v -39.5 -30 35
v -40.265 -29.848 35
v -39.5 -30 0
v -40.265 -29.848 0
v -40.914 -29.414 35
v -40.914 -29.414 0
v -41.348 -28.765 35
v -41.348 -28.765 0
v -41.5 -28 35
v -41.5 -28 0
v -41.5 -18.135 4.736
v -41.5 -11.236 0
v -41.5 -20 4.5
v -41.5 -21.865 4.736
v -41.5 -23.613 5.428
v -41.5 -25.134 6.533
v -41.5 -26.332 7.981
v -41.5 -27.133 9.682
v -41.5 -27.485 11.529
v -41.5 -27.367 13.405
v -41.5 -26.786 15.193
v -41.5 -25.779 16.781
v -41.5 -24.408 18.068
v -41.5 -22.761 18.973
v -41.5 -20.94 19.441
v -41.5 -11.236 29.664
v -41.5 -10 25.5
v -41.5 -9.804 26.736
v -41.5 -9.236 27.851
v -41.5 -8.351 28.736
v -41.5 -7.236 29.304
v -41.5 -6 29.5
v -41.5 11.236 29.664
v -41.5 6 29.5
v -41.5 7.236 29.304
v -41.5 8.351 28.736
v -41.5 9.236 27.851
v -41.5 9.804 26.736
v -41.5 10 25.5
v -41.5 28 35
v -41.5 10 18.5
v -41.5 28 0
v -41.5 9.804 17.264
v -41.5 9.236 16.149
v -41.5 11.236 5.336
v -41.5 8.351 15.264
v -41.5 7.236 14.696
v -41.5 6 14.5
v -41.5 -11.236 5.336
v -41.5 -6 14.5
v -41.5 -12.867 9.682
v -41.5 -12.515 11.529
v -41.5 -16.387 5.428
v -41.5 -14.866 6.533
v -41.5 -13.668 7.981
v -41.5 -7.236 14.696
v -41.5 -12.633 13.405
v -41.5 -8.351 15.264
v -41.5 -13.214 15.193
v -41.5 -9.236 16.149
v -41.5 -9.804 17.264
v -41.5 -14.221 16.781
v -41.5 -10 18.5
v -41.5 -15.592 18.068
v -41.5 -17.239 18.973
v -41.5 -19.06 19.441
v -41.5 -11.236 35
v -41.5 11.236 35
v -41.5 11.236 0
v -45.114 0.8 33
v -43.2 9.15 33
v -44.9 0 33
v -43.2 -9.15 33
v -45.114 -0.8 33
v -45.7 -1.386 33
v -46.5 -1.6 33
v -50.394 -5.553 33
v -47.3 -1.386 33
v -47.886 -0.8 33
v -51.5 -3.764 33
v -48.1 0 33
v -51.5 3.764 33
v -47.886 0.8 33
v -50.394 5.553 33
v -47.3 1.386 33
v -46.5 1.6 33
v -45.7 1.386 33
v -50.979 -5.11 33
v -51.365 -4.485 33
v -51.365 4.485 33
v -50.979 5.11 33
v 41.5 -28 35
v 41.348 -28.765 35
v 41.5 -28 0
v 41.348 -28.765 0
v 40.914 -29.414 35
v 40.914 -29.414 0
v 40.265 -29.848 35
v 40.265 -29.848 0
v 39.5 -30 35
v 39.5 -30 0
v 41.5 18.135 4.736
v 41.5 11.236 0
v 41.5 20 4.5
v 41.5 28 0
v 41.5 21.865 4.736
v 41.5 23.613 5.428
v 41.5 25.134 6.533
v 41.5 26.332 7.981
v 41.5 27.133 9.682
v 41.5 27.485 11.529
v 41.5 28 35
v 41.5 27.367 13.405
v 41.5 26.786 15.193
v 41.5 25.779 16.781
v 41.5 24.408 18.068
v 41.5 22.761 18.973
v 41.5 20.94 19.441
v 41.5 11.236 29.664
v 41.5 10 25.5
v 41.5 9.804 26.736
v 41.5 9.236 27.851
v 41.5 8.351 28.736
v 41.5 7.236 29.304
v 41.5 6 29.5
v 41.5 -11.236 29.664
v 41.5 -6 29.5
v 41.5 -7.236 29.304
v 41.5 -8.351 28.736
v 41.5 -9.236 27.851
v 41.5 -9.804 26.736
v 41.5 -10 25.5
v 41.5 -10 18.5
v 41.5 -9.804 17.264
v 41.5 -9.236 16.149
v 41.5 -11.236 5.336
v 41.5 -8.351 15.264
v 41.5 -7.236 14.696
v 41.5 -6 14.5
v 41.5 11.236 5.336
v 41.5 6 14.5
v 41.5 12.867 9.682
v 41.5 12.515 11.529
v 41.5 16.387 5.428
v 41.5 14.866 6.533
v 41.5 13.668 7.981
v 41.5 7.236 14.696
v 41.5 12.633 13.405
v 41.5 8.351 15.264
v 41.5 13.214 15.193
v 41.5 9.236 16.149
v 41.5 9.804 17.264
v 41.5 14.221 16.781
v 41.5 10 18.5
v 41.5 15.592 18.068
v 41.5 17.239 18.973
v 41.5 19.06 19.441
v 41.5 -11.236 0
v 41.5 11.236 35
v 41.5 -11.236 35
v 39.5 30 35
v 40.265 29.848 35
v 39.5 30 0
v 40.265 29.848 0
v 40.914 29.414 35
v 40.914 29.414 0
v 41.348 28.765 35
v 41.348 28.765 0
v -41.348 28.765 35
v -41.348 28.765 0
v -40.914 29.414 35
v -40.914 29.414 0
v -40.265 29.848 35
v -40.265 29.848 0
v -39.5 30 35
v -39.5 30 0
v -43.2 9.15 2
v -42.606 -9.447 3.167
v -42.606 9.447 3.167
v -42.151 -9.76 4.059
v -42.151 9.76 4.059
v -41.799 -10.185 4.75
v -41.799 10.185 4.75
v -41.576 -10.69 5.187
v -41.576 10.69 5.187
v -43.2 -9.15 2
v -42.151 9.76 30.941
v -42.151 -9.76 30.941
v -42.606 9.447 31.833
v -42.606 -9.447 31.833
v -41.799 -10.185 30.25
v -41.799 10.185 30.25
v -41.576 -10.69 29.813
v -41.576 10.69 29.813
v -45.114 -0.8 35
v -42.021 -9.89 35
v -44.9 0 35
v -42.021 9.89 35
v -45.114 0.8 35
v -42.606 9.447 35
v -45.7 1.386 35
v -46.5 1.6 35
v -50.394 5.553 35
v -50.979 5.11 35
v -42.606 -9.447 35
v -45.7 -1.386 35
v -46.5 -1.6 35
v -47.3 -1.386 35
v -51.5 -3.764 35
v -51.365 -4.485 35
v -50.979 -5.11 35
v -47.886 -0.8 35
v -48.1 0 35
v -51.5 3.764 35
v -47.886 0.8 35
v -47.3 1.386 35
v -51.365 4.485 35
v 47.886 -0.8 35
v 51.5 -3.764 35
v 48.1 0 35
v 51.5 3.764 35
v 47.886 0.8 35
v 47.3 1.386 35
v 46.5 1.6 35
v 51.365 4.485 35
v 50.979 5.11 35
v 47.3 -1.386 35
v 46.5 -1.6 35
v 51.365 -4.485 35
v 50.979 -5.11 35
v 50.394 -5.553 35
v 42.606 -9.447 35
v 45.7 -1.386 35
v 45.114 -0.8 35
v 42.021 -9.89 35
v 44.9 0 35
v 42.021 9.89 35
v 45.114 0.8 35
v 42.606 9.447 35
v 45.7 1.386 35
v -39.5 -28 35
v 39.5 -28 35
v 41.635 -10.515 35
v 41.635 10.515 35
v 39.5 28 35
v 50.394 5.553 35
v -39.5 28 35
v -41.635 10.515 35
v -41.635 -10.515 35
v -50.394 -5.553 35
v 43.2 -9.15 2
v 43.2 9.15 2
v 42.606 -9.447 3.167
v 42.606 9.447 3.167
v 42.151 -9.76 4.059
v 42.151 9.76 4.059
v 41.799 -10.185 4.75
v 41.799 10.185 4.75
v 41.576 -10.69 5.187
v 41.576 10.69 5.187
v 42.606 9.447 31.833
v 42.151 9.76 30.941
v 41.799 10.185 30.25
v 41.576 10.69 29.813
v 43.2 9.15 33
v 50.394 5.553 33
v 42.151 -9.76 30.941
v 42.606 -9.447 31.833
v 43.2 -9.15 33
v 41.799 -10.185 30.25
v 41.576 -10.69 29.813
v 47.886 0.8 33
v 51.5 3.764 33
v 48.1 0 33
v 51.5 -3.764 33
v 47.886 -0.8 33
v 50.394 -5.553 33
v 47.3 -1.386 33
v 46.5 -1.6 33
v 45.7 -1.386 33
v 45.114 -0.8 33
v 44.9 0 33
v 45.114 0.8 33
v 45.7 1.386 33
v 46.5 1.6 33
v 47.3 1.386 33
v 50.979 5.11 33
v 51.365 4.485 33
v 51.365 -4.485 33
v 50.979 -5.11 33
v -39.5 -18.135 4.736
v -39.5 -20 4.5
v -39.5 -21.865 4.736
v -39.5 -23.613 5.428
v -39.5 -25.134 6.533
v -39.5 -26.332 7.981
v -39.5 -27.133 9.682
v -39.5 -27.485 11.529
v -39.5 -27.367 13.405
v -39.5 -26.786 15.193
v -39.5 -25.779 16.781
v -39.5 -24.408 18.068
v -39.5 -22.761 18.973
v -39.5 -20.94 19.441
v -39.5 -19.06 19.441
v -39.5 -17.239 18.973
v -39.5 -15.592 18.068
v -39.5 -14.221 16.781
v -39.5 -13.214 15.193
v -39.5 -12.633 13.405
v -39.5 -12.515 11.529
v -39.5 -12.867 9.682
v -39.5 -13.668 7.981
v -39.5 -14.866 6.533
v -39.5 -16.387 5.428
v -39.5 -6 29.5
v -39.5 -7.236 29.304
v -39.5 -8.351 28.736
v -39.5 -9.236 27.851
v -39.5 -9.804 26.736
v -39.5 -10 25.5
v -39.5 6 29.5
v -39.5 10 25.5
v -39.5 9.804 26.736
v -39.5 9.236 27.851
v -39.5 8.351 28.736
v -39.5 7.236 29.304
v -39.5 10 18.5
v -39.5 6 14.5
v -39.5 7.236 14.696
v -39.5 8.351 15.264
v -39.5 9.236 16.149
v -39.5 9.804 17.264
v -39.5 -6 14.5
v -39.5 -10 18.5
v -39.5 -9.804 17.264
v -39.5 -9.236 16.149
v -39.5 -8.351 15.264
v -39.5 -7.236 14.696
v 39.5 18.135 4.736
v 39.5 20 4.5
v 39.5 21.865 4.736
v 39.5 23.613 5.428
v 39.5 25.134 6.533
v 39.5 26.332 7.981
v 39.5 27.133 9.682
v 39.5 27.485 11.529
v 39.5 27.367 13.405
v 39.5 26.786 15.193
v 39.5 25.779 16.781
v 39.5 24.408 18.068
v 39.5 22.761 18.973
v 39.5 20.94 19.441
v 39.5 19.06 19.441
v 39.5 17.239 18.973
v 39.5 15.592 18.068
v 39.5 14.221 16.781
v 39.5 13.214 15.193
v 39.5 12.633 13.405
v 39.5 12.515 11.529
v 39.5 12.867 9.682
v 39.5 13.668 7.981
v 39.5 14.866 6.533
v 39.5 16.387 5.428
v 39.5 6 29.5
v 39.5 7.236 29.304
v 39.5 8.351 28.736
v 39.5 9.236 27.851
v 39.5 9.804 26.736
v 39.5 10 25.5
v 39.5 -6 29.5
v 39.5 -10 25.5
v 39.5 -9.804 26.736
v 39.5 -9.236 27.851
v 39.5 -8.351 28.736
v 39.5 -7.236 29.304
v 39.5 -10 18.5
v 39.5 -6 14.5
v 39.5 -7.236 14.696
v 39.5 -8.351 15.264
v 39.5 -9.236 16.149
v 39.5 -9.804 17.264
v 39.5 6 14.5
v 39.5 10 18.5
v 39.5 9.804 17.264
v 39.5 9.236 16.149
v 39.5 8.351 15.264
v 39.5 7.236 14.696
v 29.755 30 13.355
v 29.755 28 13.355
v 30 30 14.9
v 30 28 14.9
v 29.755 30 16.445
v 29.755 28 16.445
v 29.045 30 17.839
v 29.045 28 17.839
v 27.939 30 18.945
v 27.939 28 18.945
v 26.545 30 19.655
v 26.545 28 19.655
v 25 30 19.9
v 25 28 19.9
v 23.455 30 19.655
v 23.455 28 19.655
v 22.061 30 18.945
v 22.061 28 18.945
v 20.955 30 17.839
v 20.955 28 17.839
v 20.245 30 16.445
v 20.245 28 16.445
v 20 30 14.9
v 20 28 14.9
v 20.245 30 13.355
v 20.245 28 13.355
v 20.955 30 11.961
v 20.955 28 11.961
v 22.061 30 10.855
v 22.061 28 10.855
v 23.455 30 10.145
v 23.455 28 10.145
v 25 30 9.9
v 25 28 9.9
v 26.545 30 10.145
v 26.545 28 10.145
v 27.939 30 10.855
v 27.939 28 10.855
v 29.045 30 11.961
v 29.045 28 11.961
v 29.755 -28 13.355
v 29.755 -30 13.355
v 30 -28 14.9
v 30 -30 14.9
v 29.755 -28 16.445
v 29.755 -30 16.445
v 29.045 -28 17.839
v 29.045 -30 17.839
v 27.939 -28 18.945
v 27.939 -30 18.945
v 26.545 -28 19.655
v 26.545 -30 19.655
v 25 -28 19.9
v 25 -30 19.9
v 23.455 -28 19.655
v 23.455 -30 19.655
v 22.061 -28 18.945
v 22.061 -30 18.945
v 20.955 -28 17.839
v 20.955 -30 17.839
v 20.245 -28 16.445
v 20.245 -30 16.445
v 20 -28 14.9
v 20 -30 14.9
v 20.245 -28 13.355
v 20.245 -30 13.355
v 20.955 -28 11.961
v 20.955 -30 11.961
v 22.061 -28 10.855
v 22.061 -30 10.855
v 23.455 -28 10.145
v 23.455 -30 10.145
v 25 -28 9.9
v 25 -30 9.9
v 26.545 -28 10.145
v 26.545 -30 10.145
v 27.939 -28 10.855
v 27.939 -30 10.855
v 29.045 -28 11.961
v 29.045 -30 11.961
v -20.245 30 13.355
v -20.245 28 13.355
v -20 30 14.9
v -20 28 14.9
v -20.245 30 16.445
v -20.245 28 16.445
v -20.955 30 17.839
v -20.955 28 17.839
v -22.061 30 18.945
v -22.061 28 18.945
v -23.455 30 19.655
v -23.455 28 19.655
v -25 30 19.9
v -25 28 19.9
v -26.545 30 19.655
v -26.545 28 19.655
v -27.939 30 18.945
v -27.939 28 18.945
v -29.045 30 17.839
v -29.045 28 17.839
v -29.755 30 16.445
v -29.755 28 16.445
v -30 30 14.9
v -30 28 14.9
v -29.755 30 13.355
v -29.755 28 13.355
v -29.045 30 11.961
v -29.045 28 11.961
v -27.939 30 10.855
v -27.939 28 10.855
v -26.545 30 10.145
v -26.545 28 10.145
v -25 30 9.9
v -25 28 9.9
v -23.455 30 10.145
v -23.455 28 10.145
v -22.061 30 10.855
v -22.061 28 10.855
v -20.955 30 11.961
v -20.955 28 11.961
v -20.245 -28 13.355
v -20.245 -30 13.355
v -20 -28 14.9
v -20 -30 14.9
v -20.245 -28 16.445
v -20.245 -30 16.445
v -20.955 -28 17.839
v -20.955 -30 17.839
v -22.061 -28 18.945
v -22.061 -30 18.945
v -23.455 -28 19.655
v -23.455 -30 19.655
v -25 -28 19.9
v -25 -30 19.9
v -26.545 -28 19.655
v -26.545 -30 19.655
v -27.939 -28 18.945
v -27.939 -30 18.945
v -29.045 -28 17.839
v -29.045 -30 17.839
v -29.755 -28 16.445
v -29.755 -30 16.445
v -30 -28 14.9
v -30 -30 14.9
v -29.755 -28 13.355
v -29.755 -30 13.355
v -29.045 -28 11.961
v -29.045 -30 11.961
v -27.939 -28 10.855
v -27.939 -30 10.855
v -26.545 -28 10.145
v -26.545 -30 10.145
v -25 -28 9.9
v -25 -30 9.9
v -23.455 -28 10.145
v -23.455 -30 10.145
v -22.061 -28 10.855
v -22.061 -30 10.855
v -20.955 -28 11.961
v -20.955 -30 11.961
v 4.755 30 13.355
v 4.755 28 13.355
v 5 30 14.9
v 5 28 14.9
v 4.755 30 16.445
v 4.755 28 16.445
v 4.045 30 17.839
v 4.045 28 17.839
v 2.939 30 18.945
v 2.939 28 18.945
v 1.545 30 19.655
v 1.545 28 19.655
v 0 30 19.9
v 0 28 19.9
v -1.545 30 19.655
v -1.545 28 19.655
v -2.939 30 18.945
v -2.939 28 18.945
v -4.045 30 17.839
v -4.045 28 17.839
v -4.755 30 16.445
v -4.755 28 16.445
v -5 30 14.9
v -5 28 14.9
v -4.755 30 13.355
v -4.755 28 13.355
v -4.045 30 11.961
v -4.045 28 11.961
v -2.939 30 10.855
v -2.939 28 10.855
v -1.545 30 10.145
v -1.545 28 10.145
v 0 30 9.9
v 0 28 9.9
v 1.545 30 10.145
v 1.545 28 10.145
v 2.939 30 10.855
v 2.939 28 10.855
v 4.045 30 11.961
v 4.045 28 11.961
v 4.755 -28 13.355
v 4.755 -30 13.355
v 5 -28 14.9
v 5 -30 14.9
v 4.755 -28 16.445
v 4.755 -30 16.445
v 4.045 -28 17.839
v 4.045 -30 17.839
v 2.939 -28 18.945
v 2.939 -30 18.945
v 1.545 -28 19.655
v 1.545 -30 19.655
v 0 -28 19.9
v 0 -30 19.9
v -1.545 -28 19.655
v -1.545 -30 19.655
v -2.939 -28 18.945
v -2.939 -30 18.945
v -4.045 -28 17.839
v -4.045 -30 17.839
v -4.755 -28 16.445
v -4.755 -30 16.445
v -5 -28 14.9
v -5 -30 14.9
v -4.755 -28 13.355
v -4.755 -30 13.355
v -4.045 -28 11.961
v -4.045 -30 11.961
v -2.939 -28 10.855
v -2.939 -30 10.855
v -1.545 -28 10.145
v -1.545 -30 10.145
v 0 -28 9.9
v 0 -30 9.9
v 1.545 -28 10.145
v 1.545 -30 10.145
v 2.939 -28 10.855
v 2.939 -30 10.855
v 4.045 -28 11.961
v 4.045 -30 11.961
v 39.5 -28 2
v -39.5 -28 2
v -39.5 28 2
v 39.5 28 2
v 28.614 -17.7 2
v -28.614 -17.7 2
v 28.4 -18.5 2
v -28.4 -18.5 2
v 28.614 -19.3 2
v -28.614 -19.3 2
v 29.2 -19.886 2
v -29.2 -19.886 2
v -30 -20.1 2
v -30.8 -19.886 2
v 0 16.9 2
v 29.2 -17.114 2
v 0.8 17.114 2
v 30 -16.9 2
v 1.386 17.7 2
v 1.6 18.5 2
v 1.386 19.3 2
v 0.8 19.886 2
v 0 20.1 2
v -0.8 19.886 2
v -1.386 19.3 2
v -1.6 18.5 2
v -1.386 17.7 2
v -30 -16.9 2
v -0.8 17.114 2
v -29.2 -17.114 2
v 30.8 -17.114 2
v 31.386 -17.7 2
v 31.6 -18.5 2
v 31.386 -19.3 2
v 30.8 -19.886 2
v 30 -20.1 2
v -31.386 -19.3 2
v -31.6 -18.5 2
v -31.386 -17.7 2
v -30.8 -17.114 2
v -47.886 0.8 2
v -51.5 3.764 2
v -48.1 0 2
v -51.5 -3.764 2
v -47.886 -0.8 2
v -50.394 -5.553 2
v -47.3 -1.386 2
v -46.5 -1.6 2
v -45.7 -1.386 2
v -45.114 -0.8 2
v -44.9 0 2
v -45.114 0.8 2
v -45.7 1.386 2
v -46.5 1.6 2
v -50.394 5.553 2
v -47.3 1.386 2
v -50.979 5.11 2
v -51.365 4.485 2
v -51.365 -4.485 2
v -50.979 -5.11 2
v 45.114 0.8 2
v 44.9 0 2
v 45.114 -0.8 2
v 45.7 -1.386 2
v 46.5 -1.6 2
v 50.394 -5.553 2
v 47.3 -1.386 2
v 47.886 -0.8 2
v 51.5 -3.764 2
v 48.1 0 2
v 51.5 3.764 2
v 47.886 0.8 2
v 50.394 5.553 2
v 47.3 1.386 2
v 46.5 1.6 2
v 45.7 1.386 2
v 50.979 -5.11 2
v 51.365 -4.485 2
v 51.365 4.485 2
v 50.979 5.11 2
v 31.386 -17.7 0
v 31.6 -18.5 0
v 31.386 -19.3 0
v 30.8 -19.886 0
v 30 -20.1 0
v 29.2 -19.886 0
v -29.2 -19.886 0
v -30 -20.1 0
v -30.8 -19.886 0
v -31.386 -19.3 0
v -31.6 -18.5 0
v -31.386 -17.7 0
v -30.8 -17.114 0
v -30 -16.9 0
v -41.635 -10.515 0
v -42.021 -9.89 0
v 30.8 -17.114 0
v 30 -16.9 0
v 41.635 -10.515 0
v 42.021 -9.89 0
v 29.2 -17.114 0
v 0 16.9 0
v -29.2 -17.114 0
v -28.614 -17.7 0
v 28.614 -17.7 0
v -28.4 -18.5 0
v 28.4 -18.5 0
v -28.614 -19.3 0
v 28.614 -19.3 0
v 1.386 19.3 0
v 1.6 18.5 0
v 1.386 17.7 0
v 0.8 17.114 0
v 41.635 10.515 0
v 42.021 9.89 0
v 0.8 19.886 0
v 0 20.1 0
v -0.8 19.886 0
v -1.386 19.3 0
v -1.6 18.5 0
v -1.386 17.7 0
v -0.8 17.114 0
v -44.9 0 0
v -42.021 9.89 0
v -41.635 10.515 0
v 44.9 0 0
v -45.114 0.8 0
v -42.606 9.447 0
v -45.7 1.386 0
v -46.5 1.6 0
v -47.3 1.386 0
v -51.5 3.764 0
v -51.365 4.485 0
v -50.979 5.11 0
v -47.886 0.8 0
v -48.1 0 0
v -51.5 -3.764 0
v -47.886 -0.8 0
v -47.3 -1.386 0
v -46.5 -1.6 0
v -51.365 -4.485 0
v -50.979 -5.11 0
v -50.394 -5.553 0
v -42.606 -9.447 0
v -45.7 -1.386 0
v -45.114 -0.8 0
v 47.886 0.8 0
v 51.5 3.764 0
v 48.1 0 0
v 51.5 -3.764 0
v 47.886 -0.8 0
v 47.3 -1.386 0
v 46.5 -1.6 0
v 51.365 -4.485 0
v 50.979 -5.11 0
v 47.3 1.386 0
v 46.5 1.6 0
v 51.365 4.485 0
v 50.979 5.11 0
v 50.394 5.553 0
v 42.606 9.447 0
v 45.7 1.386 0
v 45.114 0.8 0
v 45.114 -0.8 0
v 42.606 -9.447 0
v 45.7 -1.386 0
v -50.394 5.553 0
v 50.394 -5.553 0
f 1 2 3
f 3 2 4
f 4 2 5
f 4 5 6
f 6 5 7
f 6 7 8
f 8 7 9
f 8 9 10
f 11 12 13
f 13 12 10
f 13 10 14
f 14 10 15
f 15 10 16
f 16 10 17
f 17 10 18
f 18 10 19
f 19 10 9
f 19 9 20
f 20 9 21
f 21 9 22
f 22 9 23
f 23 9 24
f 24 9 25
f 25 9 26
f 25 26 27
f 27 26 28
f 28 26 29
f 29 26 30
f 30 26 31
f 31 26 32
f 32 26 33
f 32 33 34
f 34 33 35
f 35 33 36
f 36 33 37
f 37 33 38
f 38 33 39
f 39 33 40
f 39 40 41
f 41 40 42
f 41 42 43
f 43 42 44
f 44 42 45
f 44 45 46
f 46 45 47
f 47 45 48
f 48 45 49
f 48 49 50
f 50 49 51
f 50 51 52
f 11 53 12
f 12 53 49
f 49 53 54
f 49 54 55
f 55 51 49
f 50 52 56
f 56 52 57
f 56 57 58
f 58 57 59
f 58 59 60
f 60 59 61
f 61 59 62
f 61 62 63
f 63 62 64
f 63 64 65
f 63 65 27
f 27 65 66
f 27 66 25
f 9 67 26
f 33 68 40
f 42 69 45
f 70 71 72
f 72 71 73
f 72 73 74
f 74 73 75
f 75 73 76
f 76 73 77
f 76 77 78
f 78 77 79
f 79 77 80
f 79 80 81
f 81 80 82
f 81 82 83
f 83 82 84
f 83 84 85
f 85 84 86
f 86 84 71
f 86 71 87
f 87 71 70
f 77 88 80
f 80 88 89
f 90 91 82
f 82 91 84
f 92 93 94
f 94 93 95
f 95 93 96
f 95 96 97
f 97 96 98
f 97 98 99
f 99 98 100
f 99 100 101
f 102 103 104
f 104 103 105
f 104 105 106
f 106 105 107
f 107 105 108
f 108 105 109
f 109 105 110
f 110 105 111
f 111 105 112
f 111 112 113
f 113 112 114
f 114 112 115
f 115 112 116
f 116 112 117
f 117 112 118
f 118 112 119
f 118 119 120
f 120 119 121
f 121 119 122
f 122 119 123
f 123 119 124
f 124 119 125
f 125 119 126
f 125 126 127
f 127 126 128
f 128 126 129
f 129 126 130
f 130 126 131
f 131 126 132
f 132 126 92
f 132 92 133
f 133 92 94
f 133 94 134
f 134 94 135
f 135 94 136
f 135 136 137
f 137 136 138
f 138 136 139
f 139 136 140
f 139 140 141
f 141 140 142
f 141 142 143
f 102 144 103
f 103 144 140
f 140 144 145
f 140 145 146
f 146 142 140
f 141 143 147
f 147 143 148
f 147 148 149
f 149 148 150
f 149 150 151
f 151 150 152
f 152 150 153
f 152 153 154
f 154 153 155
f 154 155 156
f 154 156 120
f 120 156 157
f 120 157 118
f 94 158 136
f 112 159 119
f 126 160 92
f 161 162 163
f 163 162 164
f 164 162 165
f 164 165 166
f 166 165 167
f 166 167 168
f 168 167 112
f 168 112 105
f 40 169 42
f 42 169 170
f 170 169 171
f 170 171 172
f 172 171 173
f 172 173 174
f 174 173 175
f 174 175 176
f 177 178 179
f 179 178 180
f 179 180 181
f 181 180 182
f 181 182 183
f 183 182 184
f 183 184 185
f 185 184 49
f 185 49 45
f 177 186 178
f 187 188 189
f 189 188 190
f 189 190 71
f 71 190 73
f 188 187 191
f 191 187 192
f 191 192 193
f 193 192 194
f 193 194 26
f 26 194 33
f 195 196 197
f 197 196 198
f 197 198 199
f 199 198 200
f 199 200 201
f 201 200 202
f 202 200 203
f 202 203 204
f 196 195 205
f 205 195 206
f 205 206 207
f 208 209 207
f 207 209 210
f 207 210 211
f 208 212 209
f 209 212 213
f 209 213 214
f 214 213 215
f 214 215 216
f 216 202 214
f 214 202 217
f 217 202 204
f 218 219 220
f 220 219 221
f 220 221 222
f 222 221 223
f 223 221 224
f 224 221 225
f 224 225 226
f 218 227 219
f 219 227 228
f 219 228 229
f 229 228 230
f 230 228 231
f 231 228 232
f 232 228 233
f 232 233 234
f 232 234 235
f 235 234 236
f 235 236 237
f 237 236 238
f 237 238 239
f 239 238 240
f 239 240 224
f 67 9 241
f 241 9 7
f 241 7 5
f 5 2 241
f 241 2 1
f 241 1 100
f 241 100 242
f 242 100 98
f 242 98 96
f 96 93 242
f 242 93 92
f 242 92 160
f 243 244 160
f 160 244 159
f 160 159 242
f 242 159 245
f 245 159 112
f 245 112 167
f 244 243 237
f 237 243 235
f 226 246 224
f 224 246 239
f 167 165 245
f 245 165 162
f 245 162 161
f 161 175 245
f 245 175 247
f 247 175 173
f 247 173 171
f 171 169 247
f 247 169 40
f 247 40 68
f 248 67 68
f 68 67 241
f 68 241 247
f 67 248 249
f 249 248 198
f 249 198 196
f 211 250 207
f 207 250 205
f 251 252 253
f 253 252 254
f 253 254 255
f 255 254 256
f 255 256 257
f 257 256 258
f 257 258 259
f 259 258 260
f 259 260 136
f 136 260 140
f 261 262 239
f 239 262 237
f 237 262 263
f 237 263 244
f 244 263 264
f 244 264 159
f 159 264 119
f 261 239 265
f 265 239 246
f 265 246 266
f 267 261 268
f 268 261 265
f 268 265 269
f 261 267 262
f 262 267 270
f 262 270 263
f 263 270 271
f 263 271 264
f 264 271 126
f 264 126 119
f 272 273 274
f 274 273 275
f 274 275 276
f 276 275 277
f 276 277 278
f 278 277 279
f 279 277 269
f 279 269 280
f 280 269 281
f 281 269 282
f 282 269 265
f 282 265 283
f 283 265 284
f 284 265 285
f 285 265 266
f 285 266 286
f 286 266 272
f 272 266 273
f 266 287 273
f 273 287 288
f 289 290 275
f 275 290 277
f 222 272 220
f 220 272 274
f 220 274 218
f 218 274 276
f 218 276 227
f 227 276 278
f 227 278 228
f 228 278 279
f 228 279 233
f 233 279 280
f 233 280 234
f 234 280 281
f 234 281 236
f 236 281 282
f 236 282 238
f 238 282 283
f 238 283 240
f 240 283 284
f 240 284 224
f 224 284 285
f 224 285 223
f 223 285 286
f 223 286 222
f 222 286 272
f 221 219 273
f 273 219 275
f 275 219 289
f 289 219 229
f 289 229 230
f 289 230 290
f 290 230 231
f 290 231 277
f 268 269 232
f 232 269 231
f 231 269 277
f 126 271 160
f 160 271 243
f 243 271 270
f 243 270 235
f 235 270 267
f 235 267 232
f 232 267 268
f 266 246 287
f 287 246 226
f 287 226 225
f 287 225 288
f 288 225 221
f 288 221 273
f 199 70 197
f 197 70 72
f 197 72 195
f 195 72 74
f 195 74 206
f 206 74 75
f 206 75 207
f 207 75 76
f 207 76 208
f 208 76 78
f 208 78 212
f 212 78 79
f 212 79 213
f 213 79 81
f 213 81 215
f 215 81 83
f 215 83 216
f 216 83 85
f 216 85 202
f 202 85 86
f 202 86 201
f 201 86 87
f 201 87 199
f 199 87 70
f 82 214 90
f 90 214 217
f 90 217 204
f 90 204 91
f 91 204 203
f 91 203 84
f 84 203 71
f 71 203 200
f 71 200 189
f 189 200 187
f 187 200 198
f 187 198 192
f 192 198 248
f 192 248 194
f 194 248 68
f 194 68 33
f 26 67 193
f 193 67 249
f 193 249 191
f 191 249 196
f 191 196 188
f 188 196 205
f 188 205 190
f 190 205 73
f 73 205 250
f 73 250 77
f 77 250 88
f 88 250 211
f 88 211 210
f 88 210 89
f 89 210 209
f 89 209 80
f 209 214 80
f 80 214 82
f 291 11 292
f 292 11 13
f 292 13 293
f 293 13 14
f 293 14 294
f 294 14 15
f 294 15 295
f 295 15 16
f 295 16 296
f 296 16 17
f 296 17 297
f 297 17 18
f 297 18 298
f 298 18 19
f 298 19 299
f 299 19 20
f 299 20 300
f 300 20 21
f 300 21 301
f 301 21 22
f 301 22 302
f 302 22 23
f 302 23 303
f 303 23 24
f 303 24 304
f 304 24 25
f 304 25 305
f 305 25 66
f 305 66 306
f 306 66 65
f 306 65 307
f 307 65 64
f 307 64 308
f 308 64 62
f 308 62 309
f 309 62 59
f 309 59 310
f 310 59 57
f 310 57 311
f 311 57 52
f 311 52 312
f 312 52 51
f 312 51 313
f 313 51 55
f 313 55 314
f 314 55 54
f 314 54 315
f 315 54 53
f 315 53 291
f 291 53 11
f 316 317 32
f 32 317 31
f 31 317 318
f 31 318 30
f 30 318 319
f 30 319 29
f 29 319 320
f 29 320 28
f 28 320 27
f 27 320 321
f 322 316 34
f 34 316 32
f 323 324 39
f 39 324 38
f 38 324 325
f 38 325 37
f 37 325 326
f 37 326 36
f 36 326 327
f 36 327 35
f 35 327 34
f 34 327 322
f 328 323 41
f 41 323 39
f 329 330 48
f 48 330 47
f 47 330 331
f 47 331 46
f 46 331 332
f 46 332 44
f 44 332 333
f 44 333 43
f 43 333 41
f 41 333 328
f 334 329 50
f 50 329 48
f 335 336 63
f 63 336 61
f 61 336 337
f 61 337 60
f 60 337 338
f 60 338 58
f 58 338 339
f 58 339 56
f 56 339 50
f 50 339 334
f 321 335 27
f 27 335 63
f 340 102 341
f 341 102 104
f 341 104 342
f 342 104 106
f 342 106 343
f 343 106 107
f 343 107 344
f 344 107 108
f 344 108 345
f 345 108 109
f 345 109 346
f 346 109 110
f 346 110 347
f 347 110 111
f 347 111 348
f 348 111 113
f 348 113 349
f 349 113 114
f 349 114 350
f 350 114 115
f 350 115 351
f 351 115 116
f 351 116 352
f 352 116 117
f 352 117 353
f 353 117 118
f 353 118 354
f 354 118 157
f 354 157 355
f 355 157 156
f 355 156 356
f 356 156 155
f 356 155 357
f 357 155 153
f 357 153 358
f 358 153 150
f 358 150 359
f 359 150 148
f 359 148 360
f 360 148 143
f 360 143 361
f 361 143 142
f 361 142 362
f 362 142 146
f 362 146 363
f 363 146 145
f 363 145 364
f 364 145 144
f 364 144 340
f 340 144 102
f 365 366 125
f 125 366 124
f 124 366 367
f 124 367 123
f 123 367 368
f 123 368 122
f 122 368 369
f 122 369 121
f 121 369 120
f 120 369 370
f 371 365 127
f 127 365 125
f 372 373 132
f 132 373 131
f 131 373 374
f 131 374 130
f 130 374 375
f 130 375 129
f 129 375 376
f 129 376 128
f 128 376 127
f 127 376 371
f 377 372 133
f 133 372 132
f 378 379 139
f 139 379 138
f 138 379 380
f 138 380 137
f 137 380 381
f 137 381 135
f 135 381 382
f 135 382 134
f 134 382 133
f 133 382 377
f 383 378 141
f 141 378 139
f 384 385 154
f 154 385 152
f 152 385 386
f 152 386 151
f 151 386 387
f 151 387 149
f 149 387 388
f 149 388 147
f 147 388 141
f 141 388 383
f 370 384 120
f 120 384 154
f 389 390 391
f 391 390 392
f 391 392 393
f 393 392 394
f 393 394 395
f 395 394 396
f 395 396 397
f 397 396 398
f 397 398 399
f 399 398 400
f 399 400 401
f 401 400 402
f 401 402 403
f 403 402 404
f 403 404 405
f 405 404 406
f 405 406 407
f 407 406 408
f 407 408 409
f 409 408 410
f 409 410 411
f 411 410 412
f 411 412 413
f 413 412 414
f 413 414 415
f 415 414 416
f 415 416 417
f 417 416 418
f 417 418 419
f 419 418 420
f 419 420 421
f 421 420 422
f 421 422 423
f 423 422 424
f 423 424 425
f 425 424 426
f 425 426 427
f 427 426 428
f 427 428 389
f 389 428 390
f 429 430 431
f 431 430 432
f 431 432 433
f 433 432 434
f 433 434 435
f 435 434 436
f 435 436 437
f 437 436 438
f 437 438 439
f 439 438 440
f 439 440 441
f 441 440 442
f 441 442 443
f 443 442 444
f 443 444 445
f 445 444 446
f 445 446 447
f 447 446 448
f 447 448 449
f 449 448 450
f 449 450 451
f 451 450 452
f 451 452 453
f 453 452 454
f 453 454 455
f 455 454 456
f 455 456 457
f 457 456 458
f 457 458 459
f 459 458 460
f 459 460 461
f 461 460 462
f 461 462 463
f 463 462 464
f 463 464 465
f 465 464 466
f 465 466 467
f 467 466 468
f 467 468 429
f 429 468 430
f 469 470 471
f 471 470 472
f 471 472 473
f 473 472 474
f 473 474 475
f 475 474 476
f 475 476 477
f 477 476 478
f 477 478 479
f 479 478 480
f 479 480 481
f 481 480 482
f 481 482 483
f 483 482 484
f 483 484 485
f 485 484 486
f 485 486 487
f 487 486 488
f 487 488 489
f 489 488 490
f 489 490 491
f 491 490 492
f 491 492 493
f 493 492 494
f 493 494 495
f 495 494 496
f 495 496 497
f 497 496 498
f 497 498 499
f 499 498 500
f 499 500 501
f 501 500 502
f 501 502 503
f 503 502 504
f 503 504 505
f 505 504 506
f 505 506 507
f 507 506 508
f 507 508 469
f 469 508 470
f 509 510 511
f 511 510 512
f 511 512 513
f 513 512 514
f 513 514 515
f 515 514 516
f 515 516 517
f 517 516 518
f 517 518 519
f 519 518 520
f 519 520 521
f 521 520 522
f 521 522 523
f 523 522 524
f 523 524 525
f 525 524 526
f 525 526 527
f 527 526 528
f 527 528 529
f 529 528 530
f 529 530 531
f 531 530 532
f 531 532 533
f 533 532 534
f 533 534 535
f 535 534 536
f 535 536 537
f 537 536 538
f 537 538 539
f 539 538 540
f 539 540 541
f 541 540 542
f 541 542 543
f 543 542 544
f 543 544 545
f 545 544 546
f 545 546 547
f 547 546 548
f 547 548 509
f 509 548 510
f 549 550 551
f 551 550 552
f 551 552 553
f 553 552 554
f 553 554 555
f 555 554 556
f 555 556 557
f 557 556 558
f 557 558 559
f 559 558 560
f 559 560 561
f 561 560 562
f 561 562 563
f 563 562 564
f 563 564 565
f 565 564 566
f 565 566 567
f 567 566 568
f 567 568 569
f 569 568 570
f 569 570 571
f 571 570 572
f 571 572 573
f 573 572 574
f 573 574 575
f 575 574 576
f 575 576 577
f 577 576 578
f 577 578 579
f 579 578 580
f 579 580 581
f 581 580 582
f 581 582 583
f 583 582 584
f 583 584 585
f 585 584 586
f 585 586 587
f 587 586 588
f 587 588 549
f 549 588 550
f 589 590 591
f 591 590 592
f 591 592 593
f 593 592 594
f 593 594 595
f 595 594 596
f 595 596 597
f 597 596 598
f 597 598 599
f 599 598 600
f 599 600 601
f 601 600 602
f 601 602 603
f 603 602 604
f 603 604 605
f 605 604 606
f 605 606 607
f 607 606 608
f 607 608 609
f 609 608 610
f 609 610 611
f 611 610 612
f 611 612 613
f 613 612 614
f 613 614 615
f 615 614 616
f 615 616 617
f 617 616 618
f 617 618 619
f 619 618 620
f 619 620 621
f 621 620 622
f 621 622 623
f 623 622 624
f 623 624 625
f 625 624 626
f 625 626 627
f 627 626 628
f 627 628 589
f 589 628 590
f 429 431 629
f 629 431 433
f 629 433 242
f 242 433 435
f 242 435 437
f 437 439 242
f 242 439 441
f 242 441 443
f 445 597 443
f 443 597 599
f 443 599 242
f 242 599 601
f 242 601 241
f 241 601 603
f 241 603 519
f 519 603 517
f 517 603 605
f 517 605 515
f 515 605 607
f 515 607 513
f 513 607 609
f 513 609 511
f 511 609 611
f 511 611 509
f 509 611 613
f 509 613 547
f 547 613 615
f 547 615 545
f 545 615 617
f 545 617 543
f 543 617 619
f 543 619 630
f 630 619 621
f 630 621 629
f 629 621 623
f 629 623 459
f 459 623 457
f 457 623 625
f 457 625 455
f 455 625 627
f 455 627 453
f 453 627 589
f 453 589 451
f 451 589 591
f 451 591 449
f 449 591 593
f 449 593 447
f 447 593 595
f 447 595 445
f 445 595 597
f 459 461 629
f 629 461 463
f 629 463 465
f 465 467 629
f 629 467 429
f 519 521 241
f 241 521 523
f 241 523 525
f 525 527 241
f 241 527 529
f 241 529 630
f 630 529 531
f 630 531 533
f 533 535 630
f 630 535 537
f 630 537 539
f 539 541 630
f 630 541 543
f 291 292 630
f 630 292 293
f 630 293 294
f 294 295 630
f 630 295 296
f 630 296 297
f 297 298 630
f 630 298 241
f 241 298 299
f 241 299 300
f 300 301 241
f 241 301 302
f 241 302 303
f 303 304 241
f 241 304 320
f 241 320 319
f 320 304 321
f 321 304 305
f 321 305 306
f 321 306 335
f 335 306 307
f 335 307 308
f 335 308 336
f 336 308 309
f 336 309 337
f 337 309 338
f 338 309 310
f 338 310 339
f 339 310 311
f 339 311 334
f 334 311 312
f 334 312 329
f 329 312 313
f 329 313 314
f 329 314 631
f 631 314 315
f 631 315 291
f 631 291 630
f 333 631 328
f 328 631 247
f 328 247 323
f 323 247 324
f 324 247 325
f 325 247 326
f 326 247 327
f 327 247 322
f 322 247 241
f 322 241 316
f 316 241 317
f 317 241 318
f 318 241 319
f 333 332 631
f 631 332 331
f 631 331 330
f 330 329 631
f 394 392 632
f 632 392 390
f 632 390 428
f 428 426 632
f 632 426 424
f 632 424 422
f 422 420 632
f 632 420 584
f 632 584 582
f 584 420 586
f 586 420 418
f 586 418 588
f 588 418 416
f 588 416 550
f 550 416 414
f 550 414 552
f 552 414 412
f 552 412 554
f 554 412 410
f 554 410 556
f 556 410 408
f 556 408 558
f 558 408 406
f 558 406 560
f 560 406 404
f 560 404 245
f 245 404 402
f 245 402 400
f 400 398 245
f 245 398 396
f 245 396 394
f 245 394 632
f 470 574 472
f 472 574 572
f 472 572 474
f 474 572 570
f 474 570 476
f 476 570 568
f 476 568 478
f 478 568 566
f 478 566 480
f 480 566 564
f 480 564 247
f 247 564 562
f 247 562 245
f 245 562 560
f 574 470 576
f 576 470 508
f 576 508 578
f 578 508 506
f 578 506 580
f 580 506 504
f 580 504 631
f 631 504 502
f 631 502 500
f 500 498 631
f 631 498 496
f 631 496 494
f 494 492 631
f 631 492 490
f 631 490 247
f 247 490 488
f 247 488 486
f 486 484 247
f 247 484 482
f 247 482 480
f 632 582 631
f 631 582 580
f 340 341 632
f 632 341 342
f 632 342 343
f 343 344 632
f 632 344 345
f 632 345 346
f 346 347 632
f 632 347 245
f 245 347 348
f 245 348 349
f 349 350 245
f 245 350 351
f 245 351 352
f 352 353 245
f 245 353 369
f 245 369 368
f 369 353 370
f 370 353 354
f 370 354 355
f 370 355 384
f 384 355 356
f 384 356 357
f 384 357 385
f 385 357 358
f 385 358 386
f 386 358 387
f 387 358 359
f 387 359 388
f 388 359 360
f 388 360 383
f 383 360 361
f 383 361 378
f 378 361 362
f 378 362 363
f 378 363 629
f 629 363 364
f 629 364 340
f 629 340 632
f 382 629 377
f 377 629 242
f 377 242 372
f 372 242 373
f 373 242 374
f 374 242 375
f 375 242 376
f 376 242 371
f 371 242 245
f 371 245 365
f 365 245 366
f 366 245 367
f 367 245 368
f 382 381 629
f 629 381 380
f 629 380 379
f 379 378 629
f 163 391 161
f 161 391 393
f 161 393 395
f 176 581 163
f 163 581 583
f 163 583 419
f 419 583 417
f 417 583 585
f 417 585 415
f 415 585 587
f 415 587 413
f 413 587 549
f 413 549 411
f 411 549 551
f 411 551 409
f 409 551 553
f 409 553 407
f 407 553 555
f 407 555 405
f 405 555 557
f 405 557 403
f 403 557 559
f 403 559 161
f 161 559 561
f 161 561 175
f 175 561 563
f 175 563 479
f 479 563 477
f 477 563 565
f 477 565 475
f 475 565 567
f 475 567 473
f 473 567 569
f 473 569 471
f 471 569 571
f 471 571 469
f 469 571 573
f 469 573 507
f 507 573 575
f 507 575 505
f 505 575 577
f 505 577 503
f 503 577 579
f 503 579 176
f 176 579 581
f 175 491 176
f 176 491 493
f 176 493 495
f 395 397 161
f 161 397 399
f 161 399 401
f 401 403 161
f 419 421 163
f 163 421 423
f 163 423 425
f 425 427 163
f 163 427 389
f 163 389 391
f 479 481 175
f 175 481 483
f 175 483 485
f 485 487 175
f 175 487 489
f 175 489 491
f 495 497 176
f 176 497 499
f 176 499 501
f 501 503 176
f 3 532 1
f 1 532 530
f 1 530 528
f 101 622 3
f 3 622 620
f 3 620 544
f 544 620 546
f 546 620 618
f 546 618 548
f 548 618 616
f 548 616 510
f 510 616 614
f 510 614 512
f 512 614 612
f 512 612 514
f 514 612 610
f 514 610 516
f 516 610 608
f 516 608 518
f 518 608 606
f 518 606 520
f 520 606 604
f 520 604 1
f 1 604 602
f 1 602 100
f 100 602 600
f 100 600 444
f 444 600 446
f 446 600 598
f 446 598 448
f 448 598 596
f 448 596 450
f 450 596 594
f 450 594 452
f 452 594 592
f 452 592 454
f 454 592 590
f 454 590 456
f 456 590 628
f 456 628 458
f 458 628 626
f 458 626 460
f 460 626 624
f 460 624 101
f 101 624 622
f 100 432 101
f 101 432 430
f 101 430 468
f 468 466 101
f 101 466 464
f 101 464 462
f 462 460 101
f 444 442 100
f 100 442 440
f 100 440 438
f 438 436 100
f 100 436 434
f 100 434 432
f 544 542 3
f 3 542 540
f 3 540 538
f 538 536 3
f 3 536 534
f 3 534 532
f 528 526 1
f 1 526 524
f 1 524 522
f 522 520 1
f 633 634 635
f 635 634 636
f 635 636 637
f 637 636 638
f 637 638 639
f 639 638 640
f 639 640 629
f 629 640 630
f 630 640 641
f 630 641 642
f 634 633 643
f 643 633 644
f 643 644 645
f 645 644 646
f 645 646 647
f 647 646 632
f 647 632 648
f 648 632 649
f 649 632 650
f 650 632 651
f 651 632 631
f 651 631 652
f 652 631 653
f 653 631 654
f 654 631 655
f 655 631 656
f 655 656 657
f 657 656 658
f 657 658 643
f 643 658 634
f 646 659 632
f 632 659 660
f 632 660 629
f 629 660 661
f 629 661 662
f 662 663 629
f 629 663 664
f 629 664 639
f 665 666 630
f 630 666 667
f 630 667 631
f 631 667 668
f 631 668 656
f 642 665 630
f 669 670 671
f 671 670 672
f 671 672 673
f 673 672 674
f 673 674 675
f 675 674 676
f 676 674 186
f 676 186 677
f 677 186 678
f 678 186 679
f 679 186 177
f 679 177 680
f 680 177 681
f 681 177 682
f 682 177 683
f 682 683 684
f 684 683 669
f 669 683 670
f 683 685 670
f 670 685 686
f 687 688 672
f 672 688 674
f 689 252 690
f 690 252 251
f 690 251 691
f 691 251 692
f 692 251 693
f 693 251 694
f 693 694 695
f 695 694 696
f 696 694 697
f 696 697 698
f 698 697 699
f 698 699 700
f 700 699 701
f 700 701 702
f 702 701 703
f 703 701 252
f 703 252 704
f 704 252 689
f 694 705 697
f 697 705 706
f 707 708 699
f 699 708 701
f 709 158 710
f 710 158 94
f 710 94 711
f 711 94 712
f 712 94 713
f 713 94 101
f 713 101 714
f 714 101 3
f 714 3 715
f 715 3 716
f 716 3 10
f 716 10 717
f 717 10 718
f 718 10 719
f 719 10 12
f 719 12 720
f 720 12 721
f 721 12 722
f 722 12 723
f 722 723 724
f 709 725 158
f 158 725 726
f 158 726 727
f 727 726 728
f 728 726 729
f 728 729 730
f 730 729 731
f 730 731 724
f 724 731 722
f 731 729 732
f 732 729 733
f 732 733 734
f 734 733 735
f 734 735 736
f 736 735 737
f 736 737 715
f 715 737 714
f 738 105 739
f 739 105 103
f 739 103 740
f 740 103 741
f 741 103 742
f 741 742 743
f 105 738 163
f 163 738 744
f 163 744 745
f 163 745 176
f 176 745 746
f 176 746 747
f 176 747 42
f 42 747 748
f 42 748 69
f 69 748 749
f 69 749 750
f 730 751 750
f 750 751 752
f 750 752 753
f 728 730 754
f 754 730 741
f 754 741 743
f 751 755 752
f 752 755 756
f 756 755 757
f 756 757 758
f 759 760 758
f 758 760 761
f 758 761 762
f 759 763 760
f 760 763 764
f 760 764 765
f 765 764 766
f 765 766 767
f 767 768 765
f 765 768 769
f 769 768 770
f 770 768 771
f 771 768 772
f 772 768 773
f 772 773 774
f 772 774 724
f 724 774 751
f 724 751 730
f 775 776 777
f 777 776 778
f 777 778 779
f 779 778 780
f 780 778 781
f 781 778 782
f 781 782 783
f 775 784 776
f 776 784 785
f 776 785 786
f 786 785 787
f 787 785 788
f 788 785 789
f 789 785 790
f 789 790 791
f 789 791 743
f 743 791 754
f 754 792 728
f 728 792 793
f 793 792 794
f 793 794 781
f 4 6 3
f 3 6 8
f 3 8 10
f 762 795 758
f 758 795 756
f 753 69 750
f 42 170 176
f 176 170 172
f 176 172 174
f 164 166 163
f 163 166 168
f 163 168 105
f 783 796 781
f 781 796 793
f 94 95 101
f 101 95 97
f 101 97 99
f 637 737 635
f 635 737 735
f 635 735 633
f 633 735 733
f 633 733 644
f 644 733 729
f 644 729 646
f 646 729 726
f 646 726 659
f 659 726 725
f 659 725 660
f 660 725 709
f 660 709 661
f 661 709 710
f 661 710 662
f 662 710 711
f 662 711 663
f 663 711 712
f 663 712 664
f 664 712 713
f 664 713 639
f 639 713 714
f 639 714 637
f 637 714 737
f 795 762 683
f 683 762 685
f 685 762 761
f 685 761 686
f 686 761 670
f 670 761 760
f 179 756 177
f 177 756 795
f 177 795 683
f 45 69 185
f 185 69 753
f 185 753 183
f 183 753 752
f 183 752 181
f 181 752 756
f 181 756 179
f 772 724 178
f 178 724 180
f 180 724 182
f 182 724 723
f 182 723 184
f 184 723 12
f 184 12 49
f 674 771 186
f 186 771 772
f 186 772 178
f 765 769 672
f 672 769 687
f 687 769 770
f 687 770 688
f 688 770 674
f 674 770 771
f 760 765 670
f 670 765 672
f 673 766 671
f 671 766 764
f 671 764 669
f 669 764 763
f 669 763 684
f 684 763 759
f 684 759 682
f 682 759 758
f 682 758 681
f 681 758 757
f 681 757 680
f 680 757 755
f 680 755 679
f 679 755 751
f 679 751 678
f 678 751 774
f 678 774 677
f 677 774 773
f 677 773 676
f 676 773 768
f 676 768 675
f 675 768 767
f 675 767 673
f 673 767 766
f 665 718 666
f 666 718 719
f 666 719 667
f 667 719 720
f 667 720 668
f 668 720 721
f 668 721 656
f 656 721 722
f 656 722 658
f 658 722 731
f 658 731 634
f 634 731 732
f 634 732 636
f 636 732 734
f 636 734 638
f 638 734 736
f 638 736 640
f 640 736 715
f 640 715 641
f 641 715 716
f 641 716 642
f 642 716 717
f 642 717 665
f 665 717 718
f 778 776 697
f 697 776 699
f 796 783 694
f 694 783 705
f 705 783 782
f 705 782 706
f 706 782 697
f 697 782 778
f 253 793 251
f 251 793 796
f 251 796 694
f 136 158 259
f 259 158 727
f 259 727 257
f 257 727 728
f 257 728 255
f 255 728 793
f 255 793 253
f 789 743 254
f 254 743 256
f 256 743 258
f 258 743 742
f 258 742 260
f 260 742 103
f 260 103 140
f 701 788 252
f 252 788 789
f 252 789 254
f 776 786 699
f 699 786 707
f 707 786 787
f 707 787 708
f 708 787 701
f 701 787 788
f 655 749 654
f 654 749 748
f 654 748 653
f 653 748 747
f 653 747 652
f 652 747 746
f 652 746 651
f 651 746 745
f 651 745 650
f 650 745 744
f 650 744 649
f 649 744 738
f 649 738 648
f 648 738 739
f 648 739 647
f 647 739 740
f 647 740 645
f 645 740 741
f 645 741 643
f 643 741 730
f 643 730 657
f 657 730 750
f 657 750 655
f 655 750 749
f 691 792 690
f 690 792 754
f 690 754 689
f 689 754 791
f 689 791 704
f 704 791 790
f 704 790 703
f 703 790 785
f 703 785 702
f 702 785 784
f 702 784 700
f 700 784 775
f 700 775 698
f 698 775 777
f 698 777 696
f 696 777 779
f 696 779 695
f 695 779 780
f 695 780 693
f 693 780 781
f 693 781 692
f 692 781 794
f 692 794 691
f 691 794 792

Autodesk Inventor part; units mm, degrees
ref_plane "YZ Plane" through (0, 0, 0) normal (1, 0, 0) x (0, 1, 0)
ref_plane "XZ Plane" through (0, 0, 0) normal (0, 1, 0) x (-1, 0, 0)
sketch "Base" plane through (0, 0, 0) normal (0, 0, 1) x (1, 0, 0)
  line L0 (-41.5, -30) -> (41.5, -30)
  line L1 (41.5, -30) -> (41.5, -11.2361)
  line L2 (41.5, 30) -> (-41.5, 30)
  line L3 (-41.5, -30) -> (41.5, 30) construction
  line L4 (41.5, -30) -> (-41.5, 30) construction
  line L5 (-39.5, -28) -> (39.5, -28)
  line L6 (39.5, -28) -> (39.5, 28)
  line L7 (39.5, 28) -> (-39.5, 28)
  line L8 (-39.5, 28) -> (-39.5, -28)
  circle A0 centre (-30, -18.5) radius 1.35
  circle A1 centre (30, -18.5) radius 1.35
  circle A2 centre (0, 18.5) radius 1.35
  line L9 (51.5, 3.7639) -> (51.5, -3.7639)
  line L10 (41.5, 5) -> (51.5, -5) construction
  line L11 (51.5, 5) -> (41.5, -5) construction
  line L12 (42.6056, -9.4472) -> (50.3944, -5.5528)
  line L13 (50.3944, 5.5528) -> (42.6056, 9.4472)
  arc A3 (51.5, 3.7639) -> (50.3944, 5.5528) centre (49.5, 3.7639) ccw
  arc A4 (50.3944, -5.5528) -> (51.5, -3.7639) centre (49.5, -3.7639) ccw
  arc A5 (42.6056, -9.4472) -> (41.5, -11.2361) centre (43.5, -11.2361) ccw
  line L14 (41.5, 11.2361) -> (41.5, 30)
  arc A6 (41.5, 11.2361) -> (42.6056, 9.4472) centre (43.5, 11.2361) ccw
  line L15 (-41.5, -30) -> (-41.5, -11.2361)
  line L16 (-39.5, -28) -> (-39.5, 28)
  line L17 (-51.5, 3.7639) -> (-51.5, -3.7639)
  line L18 (-41.5, 5) -> (-51.5, -5) construction
  line L19 (-51.5, 5) -> (-41.5, -5) construction
  line L20 (-42.6056, -9.4472) -> (-50.3944, -5.5528)
  line L21 (-50.3944, 5.5528) -> (-42.6056, 9.4472)
  arc A7 (-50.3944, 5.5528) -> (-51.5, 3.7639) centre (-49.5, 3.7639) ccw
  arc A8 (-51.5, -3.7639) -> (-50.3944, -5.5528) centre (-49.5, -3.7639) ccw
  arc A9 (-41.5, -11.2361) -> (-42.6056, -9.4472) centre (-43.5, -11.2361) ccw
  line L22 (-41.5, 11.2361) -> (-41.5, 30)
  arc A10 (-42.6056, 9.4472) -> (-41.5, 11.2361) centre (-43.5, 11.2361) ccw
  line L23 (41.5, 11.2361) -> (41.5, -11.2361)
  line L24 (-41.5, -11.2361) -> (-41.5, 11.2361)
  circle A11 centre (-46.5, 0) radius 1.35
  circle A12 centre (46.5, 0) radius 1.35
  circle A13 centre (0, 18.5) radius 1.6
  circle A14 centre (30, -18.5) radius 1.6
  circle A15 centre (-30, -18.5) radius 1.6
  circle A16 centre (-46.5, 0) radius 1.6
  circle A17 centre (46.5, 0) radius 1.6
  point P0 (0, 0)
  point P1 (41.5, 10)
  point P2 (-41.5, 10)
  point P3 (-41.5, -10)
  point P4 (-41.5, 10)
  dimension "d0" = 83
  dimension "d1" = 60
  dimension "d5" = 2.7
  dimension "d6" = 9.5
  dimension "d8" = 2.7
  dimension "d9" = 5
  dimension "d10" = 10
  dimension "d11" = 10
  dimension "d14" = 2
  dimension "d15" = 2
  dimension "d16" = 2.7
  dimension "d17" = 2.7
  dimension "d63" = 3.2
  dimension "d64" = 3.2
  dimension "d65" = 3.2
  dimension "d66" = 3.2
  dimension "d67" = 3.2
extrude "Extrusión1" add sketch "Base" along normal blind 2 contours L8 L7 L6 L5 | A13 | A14 | A15
extrude "Extrusión2" add sketch "Base" along normal blind 2 contours A9 L20 A8 L17 A7 L21 A10 L24 | L23 A6 L13 A3 L9 A4 L12 A5 | A16 | A17
extrude "Extrusión3" cut sketch "Base" along normal blind 35 contours L15 L24 L22 L2 L14 L23 L1 L0
extrude "Extrusión4" add sketch "Base" along normal blind 35 contours L15 L24 L22 L2 L14 L23 L1 L0
sketch "Boceto2" plane through (-41.5, 30, 0) normal (0, 1, 0) x (1, 0, 0)
  line L0 (41.5, 0) -> (41.5, -35)
  line L1 (2, -35) -> (81, -35) projected
  line L2 (83, 0) -> (0, 0) projected
  circle A0 centre (16.5, -14.9) radius 5
  circle A1 centre (66.5, -14.9) radius 5
  circle A2 centre (41.5, -14.9) radius 5
  dimension "d26" = 14.9
  dimension "d27" = 25
  dimension "d28" = 10
  dimension "d29" = 10
extrude "Extrusión5" cut sketch "Boceto2" against normal blind 70
sketch "Boceto3" plane through (41.5, 11.2361, 0) normal (1, 0, 0) x (0, 0, -1)
  line L0 (-2, -39.2361) -> (-35, -39.2361) projected
  line L1 (-2, -15) -> (-2, -7.4721) projected
  line L2 (0, 0) -> (0, 18.7639) projected
  line L3 (-18.5, -21.2361) -> (-25.5, -21.2361)
  line L4 (-29.5, -17.2361) -> (-29.5, -5.2361)
  line L5 (-25.5, -1.2361) -> (-18.5, -1.2361)
  line L6 (-14.5, -5.2361) -> (-14.5, -17.2361)
  line L7 (-14.5, -21.2361) -> (-29.5, -1.2361) construction
  line L8 (-29.5, -21.2361) -> (-14.5, -1.2361) construction
  arc A0 (-29.5, -17.2361) -> (-25.5, -21.2361) centre (-25.5, -17.2361) ccw
  arc A1 (-18.5, -21.2361) -> (-14.5, -17.2361) centre (-18.5, -17.2361) ccw
  arc A2 (-14.5, -5.2361) -> (-18.5, -1.2361) centre (-18.5, -5.2361) ccw
  arc A3 (-25.5, -1.2361) -> (-29.5, -5.2361) centre (-25.5, -5.2361) ccw
  circle A4 centre (-12, 8.7639) radius 7.5
  point P0 (0, -11.2361)
  point P1 (-22, -11.2361)
  dimension "d32" = 28
  dimension "d33" = 48
  dimension "d34" = 20
  dimension "d35" = 12
  dimension "d36" = 15
  dimension "d37" = 20
  dimension "d38" = 4
  dimension "d39" = 15
extrude "Extrusión6" cut sketch "Boceto3" against normal blind 10
sketch3d "Boceto 3D1"
pattern_circular "Patrón circular1" count 2 over 360 about axis through (0, 0, 99.8627) along (0, 0, -1) of "Extrusión6"
sketch "Boceto4" plane through (41.5, 11.2361, 0) normal (1, 0, 0) x (0, 0, -1)
  line L0 (-35, -41.2361) -> (-35, 18.7639) projected
  point P0 (0, -11.2361)
  point P1 (-17.5, -25.9654)
  dimension "d45" = 17.5
ref_plane "Plano de trabajo1" through (41.5, -14.7294, 17.5) normal (0, 0, 1) x (1, 0, 0)
mirror "Simetría1" about plane through (41.5, -14.7294, 17.5) normal (0, 0, 1) of "Extrusión2"
chamfer "Chaflán1" distance 1.7 angle 63 1 edges at (41.5, 0, 33) measured on face at (43.0002, 0, 33)
mirror "Simetría2" about plane through (41.5, -14.7294, 17.5) normal (0, 0, 1) of "Extrusión2", "Simetría1", "Chaflán1"
chamfer "Chaflán2" distance 1.7 angle 63 1 edges at (-41.5, 0, 33) measured on face at (-43.0002, 0, 33)
chamfer "Chaflán3" distance 1.7 angle 63 1 edges at (-41.5, 0, 2) measured on face at (-43.0002, 0, 2)
fillet "Empalme1" radius 2 4 edges at (-41.5, 30, 17.5) (41.5, 30, 17.5) (41.5, -30, 17.5) (-41.5, -30, 17.5)
hole "Agujero2" at (0, 18.5, 0) at (-30, -18.5, 0) at (-46.5, 0, 0) at (30, -18.5, 0) at (46.5, 0, 0) direction (0, 0, 1) diameter 3.2 depth 23.25 tip angle 118
extrude "Extrusión8" cut sketch "Base" along normal blind 94.8 contours A16 | A17
properties part number "Contenedor del Arduino v1.1"
